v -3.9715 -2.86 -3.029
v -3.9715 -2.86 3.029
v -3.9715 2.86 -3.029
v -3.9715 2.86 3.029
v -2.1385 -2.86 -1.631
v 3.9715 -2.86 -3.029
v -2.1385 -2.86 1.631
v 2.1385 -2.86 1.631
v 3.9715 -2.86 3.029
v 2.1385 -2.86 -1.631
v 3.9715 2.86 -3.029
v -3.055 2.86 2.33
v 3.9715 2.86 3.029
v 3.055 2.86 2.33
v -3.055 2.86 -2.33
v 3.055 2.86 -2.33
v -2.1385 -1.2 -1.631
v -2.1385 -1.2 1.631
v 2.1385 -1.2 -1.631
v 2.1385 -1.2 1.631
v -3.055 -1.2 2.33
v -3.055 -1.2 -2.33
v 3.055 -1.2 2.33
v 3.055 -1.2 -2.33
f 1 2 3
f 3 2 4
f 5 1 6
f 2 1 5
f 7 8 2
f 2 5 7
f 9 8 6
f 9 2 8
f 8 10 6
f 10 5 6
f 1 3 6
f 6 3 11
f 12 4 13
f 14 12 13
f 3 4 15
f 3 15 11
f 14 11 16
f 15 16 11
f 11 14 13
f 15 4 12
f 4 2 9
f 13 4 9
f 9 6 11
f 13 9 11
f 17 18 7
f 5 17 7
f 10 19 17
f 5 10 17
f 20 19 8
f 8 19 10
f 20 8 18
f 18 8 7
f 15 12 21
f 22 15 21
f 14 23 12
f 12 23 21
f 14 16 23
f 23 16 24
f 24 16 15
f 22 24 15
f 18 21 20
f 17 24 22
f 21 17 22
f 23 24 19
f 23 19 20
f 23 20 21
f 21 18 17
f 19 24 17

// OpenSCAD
//sensor_width= 6.10; //~6.11
//sensor_height=4.39; //~4.40
//sensor_depth=4.65;  //~4.66

sensor_width=  6.11;  //~6.11
sensor_height= 4.40;  //~4.40
sensor_depth=  4.66;  //~4.66


difference() {
	Sensor(1.3);
	translate( [ 0, 1, 0 ] )
	Sensor();
	translate( [0,-2,0] )
	Sensor(.7);
}
module Sensor(s=1) { 
	cube( [s*sensor_width, s*sensor_height, s*sensor_depth ], center = true );
}
